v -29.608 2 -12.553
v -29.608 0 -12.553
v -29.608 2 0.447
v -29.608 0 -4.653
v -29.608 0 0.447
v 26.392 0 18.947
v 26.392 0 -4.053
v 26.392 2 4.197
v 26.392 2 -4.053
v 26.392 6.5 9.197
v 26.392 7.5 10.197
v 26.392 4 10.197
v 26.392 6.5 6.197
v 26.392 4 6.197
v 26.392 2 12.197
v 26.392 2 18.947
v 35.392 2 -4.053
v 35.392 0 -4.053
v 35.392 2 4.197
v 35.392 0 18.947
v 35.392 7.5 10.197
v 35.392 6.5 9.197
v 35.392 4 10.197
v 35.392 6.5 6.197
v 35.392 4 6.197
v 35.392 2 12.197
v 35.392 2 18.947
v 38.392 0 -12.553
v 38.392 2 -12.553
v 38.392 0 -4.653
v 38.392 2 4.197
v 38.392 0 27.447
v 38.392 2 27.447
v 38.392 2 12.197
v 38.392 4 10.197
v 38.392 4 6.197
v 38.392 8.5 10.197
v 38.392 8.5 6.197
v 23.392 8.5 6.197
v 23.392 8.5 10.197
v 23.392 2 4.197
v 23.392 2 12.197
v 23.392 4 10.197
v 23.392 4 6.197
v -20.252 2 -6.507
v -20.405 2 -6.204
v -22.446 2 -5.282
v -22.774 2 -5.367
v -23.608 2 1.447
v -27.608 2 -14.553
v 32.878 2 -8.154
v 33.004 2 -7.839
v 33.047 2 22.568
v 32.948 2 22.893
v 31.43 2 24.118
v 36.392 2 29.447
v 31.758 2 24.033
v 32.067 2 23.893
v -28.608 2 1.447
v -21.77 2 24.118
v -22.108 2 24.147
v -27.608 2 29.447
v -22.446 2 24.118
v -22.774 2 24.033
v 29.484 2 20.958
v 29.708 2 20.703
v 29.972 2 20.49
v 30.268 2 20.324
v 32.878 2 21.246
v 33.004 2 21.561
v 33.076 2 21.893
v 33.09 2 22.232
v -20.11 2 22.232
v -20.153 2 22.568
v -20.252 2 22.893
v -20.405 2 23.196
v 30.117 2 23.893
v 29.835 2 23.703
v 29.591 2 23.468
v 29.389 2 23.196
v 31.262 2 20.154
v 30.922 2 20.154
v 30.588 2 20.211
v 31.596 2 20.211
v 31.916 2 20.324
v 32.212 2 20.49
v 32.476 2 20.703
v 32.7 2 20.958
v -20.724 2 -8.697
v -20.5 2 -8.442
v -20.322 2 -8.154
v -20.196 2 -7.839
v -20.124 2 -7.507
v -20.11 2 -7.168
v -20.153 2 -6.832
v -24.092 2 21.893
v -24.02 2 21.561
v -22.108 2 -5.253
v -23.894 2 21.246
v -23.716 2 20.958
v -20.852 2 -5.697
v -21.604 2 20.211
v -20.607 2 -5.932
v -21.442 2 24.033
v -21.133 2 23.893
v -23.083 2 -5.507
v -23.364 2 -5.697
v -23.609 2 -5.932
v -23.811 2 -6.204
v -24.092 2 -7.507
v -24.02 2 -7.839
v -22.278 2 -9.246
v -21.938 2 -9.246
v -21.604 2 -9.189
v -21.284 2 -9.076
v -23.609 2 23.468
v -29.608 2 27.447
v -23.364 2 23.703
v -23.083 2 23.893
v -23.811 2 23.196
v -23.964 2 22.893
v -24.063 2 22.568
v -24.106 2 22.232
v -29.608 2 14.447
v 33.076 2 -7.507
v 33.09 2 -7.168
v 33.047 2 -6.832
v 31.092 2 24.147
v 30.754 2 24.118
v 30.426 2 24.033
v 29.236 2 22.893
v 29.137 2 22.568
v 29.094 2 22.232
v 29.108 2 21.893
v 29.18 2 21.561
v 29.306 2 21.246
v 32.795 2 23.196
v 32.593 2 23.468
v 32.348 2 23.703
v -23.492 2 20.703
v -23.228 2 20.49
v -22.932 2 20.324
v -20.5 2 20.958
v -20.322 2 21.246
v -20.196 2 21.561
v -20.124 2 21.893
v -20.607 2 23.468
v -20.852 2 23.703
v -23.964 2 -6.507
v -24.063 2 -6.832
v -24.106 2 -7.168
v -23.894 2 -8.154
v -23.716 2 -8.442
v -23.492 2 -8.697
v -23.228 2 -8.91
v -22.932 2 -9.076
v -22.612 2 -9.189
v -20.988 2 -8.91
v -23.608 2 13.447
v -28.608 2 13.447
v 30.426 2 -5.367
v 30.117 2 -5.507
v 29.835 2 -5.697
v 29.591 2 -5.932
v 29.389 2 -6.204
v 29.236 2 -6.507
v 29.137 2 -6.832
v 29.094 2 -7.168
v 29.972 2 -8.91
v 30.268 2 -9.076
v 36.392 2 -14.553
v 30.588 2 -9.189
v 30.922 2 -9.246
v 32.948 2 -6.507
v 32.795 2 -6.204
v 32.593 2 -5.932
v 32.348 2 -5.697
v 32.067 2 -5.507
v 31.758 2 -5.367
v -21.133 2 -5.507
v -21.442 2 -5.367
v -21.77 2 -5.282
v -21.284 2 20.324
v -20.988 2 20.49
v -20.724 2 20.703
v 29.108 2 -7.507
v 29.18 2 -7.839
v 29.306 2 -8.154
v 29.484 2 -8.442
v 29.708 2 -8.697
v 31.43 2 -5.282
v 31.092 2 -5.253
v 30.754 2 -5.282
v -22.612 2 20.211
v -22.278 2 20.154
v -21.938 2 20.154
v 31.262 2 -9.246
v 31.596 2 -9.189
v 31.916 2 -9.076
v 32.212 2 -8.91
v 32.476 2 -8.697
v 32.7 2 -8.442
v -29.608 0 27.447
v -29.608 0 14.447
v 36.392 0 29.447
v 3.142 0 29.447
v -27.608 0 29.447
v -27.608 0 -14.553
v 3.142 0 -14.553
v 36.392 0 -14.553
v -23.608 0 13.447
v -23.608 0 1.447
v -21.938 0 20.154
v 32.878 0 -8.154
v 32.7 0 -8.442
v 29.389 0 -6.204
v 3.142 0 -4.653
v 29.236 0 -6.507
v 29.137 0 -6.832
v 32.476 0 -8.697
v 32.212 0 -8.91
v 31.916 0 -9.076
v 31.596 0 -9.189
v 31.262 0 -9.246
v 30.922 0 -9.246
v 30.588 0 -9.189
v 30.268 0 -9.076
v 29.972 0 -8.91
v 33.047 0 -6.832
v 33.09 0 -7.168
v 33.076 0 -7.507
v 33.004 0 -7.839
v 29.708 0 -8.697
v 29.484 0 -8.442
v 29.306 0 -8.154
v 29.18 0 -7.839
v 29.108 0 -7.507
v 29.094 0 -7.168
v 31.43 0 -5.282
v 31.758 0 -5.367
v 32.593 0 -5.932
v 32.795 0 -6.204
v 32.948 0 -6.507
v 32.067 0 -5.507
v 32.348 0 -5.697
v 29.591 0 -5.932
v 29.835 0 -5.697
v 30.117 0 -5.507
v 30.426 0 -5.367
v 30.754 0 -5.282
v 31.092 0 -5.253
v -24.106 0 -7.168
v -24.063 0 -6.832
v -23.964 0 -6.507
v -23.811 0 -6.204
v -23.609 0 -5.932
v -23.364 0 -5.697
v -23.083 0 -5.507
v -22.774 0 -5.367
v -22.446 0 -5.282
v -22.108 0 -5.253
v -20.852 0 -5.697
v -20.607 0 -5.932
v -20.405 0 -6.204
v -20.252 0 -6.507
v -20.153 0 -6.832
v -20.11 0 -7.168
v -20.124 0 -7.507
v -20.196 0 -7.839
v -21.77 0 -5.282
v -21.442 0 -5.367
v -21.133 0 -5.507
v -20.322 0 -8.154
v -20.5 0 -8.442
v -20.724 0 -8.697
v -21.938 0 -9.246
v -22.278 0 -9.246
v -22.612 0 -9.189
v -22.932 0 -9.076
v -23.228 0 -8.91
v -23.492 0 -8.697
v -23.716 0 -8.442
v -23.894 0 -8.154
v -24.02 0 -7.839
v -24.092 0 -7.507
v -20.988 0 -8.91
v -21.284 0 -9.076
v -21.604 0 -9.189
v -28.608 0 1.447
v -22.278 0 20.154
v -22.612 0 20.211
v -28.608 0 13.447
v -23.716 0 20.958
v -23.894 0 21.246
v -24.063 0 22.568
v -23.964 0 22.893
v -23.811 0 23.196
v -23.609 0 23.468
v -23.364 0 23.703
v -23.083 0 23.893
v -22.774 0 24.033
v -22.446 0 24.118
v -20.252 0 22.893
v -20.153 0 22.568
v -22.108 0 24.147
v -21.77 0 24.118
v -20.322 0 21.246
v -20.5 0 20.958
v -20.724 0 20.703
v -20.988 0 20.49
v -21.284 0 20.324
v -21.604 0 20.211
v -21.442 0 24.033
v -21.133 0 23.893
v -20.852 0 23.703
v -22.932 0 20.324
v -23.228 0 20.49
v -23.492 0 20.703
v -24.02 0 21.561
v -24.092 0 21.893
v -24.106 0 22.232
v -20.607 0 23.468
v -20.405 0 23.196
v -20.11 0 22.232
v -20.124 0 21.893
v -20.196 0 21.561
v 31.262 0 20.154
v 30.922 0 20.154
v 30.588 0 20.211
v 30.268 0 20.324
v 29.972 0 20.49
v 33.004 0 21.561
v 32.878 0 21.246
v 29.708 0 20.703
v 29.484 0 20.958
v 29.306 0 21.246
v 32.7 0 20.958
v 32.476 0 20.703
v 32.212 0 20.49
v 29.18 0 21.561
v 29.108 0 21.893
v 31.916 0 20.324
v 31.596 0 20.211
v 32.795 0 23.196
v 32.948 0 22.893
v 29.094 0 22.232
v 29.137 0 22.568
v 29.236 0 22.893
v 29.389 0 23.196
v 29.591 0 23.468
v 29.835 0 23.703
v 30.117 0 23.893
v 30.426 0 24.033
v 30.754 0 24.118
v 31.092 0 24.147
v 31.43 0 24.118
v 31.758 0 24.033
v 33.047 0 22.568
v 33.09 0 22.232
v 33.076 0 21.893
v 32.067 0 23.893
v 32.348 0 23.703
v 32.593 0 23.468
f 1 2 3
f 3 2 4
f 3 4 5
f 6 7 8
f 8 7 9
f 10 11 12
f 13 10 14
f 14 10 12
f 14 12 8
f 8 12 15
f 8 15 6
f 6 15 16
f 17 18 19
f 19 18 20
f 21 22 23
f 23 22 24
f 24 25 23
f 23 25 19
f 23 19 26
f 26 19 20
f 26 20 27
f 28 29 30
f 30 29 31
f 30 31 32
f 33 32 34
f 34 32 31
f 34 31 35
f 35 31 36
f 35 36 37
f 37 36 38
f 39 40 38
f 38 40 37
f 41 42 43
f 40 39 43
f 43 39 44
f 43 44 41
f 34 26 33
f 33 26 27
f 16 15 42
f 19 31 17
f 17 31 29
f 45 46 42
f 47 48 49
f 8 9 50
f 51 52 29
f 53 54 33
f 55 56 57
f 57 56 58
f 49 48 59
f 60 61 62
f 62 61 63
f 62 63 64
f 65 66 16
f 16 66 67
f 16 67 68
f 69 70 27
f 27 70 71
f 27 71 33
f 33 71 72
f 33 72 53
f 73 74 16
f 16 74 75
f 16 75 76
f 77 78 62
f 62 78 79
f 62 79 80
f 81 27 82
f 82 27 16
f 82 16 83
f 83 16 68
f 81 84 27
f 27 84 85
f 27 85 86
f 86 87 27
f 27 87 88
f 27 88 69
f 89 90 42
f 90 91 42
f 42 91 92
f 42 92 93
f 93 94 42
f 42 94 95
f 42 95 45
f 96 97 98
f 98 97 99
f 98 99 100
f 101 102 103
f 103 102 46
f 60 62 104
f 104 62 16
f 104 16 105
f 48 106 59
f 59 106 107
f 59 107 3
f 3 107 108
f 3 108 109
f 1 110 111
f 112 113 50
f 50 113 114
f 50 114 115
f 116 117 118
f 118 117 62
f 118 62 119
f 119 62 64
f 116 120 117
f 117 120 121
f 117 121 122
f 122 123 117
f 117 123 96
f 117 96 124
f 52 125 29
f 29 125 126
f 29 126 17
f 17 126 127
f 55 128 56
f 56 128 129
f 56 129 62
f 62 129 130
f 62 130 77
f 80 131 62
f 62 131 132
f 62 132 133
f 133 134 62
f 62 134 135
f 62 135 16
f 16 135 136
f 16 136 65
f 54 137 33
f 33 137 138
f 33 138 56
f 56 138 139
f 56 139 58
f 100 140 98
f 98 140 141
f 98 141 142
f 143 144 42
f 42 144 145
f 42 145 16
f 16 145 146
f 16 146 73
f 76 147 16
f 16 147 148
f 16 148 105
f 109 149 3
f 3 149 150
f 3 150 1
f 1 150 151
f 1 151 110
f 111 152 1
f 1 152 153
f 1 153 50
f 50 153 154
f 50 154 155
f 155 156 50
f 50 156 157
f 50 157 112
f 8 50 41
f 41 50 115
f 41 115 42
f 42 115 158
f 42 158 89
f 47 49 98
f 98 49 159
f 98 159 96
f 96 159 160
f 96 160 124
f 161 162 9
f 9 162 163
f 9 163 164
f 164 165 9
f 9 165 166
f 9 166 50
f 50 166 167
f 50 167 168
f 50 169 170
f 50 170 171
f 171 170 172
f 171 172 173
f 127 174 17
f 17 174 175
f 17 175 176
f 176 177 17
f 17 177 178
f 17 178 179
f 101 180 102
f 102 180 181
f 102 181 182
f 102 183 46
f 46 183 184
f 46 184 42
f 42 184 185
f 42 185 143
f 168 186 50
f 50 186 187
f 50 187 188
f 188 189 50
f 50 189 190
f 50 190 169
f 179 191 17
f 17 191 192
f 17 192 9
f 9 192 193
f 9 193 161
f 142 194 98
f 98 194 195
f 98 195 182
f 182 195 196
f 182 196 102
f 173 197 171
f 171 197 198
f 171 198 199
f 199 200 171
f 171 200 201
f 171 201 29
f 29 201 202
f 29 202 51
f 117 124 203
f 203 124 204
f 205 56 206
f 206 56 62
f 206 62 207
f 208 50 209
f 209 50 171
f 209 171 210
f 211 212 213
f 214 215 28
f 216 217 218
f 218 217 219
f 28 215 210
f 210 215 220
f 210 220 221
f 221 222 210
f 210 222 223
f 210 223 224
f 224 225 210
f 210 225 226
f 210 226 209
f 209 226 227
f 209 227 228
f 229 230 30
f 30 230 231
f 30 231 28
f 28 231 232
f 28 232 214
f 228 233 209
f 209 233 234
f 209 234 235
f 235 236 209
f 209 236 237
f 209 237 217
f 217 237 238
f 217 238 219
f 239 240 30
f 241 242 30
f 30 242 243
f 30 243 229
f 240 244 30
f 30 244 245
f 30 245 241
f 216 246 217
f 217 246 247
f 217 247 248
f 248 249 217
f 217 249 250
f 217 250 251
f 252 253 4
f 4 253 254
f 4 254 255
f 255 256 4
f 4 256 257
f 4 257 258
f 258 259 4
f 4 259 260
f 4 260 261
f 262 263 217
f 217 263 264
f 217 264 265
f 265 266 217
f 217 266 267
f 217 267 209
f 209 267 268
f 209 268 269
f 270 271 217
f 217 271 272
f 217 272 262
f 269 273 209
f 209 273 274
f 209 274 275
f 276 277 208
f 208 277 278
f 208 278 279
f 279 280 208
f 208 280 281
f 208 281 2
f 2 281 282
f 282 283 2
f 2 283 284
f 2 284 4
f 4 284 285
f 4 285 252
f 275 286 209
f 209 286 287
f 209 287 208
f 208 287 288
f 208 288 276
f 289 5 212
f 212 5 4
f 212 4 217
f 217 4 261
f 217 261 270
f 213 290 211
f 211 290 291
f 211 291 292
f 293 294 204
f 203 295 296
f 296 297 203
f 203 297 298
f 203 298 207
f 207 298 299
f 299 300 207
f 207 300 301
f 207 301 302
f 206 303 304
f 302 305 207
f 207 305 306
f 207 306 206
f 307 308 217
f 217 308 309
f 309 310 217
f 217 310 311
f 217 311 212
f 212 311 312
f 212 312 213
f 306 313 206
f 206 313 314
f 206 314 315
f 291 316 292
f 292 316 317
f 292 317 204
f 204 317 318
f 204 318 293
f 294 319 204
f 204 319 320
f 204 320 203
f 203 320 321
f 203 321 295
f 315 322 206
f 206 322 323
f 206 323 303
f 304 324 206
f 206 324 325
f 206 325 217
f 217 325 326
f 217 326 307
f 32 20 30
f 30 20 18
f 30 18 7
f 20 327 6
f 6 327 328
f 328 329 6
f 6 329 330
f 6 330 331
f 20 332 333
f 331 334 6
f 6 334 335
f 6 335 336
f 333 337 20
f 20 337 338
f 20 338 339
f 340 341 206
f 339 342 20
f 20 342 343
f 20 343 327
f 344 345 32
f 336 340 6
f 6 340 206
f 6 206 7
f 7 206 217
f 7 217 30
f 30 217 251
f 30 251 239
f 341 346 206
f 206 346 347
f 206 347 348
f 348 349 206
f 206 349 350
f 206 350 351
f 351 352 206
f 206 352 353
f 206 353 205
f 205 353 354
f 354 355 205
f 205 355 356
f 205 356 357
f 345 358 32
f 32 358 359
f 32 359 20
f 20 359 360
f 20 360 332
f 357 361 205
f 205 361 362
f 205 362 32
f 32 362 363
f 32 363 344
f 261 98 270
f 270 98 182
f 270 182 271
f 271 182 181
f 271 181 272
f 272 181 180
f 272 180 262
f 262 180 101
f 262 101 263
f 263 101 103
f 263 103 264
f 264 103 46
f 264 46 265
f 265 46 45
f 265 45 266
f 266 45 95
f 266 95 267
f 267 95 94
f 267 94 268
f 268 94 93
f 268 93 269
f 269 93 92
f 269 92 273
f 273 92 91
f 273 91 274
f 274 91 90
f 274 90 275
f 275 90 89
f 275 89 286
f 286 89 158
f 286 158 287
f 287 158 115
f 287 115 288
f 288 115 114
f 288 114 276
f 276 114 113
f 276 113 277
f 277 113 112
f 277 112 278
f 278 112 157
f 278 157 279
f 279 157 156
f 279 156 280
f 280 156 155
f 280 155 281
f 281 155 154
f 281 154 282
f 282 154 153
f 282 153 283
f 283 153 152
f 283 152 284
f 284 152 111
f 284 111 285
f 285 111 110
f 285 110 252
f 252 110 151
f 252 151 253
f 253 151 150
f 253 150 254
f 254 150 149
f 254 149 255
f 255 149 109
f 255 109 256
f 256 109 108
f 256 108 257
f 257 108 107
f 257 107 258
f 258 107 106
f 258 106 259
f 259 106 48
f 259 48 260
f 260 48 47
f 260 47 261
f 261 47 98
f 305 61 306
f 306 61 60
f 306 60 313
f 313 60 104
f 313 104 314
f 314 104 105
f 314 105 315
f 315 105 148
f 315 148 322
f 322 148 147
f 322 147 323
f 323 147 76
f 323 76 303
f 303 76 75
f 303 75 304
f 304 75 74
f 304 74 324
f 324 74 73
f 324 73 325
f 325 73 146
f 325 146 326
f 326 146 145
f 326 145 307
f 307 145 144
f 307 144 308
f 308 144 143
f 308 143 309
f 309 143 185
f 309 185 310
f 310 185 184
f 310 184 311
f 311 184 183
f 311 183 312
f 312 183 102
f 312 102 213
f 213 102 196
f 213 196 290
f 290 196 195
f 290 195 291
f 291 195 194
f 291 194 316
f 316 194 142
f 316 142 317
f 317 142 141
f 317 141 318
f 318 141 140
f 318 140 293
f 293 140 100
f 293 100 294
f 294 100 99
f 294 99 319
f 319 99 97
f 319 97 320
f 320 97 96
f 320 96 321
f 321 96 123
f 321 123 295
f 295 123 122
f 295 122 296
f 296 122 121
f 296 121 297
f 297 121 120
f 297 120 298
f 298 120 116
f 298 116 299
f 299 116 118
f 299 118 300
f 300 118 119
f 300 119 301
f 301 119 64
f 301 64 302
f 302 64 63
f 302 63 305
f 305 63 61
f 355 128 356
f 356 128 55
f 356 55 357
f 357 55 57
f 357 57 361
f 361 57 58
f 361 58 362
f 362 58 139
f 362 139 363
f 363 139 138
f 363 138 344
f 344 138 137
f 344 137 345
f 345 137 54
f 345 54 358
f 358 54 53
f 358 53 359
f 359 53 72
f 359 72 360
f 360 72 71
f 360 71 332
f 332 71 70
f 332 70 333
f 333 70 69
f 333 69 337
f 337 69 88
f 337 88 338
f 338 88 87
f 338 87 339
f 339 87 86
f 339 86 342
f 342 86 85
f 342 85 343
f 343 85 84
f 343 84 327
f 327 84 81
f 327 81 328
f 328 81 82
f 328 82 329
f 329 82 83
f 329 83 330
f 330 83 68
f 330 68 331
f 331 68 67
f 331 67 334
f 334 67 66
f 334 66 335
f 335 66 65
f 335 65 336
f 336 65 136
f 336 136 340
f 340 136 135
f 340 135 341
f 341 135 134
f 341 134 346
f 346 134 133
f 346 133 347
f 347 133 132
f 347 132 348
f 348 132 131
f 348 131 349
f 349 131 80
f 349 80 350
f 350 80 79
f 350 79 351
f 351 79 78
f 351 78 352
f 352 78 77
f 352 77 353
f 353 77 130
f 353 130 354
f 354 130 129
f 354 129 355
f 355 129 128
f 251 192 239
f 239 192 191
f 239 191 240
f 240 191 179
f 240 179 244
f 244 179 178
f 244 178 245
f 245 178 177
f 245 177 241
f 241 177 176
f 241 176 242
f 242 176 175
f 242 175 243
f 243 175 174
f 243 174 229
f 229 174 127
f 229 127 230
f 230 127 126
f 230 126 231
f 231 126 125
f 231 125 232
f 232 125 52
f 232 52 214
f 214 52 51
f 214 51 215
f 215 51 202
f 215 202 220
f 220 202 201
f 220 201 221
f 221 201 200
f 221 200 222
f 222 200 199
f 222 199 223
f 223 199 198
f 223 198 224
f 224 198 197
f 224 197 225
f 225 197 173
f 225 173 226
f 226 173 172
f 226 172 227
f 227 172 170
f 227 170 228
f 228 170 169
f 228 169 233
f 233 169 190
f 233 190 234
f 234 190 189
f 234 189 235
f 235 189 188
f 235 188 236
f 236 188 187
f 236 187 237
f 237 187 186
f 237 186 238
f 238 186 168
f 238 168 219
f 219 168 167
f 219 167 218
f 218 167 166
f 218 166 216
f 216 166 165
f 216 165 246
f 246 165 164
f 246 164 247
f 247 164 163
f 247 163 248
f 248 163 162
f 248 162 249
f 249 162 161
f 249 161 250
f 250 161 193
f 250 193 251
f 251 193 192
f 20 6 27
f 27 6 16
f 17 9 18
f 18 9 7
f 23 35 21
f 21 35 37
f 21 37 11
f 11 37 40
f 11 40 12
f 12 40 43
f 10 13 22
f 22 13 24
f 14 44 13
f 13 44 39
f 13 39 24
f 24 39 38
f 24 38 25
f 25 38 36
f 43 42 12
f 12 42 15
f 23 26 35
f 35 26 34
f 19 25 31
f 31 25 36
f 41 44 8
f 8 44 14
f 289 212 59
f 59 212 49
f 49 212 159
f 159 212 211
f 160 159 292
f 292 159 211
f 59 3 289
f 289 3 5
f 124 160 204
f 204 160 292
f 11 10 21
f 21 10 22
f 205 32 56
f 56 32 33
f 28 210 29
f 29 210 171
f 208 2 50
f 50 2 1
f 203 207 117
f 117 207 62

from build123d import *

# Parameters (mm, degrees)
SKETCH1_W               = 68
SKETCH1_H               = 44
BOSS_EXTRUDE1_DEPTH     = 2
SKETCH2_R               = 2
CUT_EXTRUDE1_DEPTH      = 2
SKETCH3_W               = 12
SKETCH3_H               = 23
CUT_EXTRUDE2_DEPTH      = 2
SKETCH4_W               = 3
SKETCH4_H               = 23
BOSS_EXTRUDE2_DEPTH     = 2
SKETCH5_W               = 3
SKETCH5_H               = 21.5
BOSS_EXTRUDE3_DEPTH     = 6.5
SKETCH6_W               = 4
SKETCH6_H               = 2
BOSS_EXTRUDE4_DEPTH     = 10
CUT_EXTRUDE3_DEPTH      = 20
CUT_EXTRUDE3_DEPTH_BACK = 20
SKETCH7_W               = 8.75
SKETCH7_H               = 6.5
SKETCH7_W_2             = 10.25
CHAMFER1_SIZE           = 2
SKETCH8_W               = 6
SKETCH8_H               = 12
CUT_EXTRUDE4_DEPTH      = 20
CHAMFER2_SIZE           = 1
CHAMFER3_SIZE           = 1
CHAMFER4_SIZE           = 2


with BuildPart() as part:
    # Sketch1 → Boss-Extrude1 (new body)
    with BuildSketch(Plane(origin=(0, 0, 0), x_dir=(1, 0, 0), z_dir=(0, 1, 0))):
        with Locations((4.391941392, -7.446886447)):
            Rectangle(SKETCH1_W, SKETCH1_H)
    extrude(amount=BOSS_EXTRUDE1_DEPTH)

    # Sketch2 → Cut-Extrude1 (cut)
    with BuildSketch(Plane(origin=(0, 2, 0), x_dir=(1, 0, 0), z_dir=(0, 1, 0))):
        with Locations(Location((-22.108058608, 7.253113553, 0), (0, 0, 270))):
            Circle(SKETCH2_R)
        with Locations(Location((31.091941392, 7.253113553, 0), (0, 0, 270))):
            Circle(SKETCH2_R)
        with Locations(Location((31.091941392, -22.146886447, 0), (0, 0, 270))):
            Circle(SKETCH2_R)
        with Locations(Location((-22.108058608, -22.146886447, 0), (0, 0, 270))):
            Circle(SKETCH2_R)
    extrude(amount=-CUT_EXTRUDE1_DEPTH, mode=Mode.SUBTRACT)

    # Sketch3 → Cut-Extrude2 (cut)
    with BuildSketch(Plane(origin=(0, 2, 0), x_dir=(1, 0, 0), z_dir=(0, 1, 0))):
        with Locations((32.391941392, -7.446886447)):
            Rectangle(SKETCH3_W, SKETCH3_H)
    extrude(amount=-CUT_EXTRUDE2_DEPTH, mode=Mode.SUBTRACT)

    # Sketch4 → Boss-Extrude2 (add)
    with BuildSketch(Plane(origin=(0, 2, 0), x_dir=(1, 0, 0), z_dir=(0, 1, 0))):
        with Locations((36.891941392, -7.446886447)):
            Rectangle(SKETCH4_W, SKETCH4_H)
    extrude(amount=-BOSS_EXTRUDE2_DEPTH)

    # Sketch5 → Boss-Extrude3 (add)
    with BuildSketch(Plane(origin=(0, 2, 0), x_dir=(1, 0, 0), z_dir=(0, 1, 0))):
        with Locations((36.891941392, -6.696886447)):
            Rectangle(SKETCH5_W, SKETCH5_H)
        with Locations((24.891941392, -8.196886447)):
            Rectangle(SKETCH5_W, SKETCH5_H)
    extrude(amount=BOSS_EXTRUDE3_DEPTH)

    # Sketch6 → Boss-Extrude4 (add)
    with BuildSketch(Plane(origin=(26.391941392, 0, 0), x_dir=(0, 0, -1), z_dir=(1, 0, 0))):
        with Locations((-8.196886447, 7.5)):
            Rectangle(SKETCH6_W, SKETCH6_H)
    extrude(amount=BOSS_EXTRUDE4_DEPTH)

    # Sketch7 → Cut-Extrude3 (cut, two sides: drawn at the far end of the back side and taken through both)
    with BuildSketch(Plane(origin=(26.391941392, 0, 0), x_dir=(0, 0, -1), z_dir=(1, 0, 0)).offset(-CUT_EXTRUDE3_DEPTH_BACK)):
        with Locations((-14.571886447, 5.25)):
            Rectangle(SKETCH7_W, SKETCH7_H)
        with Locations((-1.071886447, 5.25)):
            Rectangle(SKETCH7_W_2, SKETCH7_H)
    extrude(amount=CUT_EXTRUDE3_DEPTH + CUT_EXTRUDE3_DEPTH_BACK, mode=Mode.SUBTRACT)

    # Chamfer1
    chamfer1_edges = [part.edges().sort_by_distance(p)[0] for p in [
        (24.891941392, 2, 10.196886447),
        (36.891941392, 2, 10.196886447),
        (24.891941392, 2, 6.196886447),
        (36.891941392, 2, 6.196886447),
    ]]
    chamfer(chamfer1_edges, length=CHAMFER1_SIZE)

    # Sketch8 → Cut-Extrude4 (cut)
    with BuildSketch(Plane(origin=(0, 2, 0), x_dir=(1, 0, 0), z_dir=(0, 1, 0))):
        with Locations((-26.608058608, -7.446886447)):
            Rectangle(SKETCH8_W, SKETCH8_H)
    extrude(amount=-CUT_EXTRUDE4_DEPTH, mode=Mode.SUBTRACT)

    # Chamfer2
    chamfer2_edges = [part.edges().sort_by_distance(p)[0] for p in [
        (-29.608058608, 1, 13.446886447),
        (-29.608058608, 1, 1.446886447),
    ]]
    chamfer(chamfer2_edges, length=CHAMFER2_SIZE)

    # Chamfer3
    chamfer3_edges = [part.edges().sort_by_distance(p)[0] for p in [
        (30.891941392, 6.5, 10.196886447),
    ]]
    chamfer(chamfer3_edges, length=CHAMFER3_SIZE)

    # Chamfer4
    chamfer4_edges = [part.edges().sort_by_distance(p)[0] for p in [
        (-29.608058608, 1, -14.553113553),
        (38.391941392, 1, -14.553113553),
        (38.391941392, 1, 29.446886447),
        (-29.608058608, 1, 29.446886447),
    ]]
    chamfer(chamfer4_edges, length=CHAMFER4_SIZE)


solid = part.part
